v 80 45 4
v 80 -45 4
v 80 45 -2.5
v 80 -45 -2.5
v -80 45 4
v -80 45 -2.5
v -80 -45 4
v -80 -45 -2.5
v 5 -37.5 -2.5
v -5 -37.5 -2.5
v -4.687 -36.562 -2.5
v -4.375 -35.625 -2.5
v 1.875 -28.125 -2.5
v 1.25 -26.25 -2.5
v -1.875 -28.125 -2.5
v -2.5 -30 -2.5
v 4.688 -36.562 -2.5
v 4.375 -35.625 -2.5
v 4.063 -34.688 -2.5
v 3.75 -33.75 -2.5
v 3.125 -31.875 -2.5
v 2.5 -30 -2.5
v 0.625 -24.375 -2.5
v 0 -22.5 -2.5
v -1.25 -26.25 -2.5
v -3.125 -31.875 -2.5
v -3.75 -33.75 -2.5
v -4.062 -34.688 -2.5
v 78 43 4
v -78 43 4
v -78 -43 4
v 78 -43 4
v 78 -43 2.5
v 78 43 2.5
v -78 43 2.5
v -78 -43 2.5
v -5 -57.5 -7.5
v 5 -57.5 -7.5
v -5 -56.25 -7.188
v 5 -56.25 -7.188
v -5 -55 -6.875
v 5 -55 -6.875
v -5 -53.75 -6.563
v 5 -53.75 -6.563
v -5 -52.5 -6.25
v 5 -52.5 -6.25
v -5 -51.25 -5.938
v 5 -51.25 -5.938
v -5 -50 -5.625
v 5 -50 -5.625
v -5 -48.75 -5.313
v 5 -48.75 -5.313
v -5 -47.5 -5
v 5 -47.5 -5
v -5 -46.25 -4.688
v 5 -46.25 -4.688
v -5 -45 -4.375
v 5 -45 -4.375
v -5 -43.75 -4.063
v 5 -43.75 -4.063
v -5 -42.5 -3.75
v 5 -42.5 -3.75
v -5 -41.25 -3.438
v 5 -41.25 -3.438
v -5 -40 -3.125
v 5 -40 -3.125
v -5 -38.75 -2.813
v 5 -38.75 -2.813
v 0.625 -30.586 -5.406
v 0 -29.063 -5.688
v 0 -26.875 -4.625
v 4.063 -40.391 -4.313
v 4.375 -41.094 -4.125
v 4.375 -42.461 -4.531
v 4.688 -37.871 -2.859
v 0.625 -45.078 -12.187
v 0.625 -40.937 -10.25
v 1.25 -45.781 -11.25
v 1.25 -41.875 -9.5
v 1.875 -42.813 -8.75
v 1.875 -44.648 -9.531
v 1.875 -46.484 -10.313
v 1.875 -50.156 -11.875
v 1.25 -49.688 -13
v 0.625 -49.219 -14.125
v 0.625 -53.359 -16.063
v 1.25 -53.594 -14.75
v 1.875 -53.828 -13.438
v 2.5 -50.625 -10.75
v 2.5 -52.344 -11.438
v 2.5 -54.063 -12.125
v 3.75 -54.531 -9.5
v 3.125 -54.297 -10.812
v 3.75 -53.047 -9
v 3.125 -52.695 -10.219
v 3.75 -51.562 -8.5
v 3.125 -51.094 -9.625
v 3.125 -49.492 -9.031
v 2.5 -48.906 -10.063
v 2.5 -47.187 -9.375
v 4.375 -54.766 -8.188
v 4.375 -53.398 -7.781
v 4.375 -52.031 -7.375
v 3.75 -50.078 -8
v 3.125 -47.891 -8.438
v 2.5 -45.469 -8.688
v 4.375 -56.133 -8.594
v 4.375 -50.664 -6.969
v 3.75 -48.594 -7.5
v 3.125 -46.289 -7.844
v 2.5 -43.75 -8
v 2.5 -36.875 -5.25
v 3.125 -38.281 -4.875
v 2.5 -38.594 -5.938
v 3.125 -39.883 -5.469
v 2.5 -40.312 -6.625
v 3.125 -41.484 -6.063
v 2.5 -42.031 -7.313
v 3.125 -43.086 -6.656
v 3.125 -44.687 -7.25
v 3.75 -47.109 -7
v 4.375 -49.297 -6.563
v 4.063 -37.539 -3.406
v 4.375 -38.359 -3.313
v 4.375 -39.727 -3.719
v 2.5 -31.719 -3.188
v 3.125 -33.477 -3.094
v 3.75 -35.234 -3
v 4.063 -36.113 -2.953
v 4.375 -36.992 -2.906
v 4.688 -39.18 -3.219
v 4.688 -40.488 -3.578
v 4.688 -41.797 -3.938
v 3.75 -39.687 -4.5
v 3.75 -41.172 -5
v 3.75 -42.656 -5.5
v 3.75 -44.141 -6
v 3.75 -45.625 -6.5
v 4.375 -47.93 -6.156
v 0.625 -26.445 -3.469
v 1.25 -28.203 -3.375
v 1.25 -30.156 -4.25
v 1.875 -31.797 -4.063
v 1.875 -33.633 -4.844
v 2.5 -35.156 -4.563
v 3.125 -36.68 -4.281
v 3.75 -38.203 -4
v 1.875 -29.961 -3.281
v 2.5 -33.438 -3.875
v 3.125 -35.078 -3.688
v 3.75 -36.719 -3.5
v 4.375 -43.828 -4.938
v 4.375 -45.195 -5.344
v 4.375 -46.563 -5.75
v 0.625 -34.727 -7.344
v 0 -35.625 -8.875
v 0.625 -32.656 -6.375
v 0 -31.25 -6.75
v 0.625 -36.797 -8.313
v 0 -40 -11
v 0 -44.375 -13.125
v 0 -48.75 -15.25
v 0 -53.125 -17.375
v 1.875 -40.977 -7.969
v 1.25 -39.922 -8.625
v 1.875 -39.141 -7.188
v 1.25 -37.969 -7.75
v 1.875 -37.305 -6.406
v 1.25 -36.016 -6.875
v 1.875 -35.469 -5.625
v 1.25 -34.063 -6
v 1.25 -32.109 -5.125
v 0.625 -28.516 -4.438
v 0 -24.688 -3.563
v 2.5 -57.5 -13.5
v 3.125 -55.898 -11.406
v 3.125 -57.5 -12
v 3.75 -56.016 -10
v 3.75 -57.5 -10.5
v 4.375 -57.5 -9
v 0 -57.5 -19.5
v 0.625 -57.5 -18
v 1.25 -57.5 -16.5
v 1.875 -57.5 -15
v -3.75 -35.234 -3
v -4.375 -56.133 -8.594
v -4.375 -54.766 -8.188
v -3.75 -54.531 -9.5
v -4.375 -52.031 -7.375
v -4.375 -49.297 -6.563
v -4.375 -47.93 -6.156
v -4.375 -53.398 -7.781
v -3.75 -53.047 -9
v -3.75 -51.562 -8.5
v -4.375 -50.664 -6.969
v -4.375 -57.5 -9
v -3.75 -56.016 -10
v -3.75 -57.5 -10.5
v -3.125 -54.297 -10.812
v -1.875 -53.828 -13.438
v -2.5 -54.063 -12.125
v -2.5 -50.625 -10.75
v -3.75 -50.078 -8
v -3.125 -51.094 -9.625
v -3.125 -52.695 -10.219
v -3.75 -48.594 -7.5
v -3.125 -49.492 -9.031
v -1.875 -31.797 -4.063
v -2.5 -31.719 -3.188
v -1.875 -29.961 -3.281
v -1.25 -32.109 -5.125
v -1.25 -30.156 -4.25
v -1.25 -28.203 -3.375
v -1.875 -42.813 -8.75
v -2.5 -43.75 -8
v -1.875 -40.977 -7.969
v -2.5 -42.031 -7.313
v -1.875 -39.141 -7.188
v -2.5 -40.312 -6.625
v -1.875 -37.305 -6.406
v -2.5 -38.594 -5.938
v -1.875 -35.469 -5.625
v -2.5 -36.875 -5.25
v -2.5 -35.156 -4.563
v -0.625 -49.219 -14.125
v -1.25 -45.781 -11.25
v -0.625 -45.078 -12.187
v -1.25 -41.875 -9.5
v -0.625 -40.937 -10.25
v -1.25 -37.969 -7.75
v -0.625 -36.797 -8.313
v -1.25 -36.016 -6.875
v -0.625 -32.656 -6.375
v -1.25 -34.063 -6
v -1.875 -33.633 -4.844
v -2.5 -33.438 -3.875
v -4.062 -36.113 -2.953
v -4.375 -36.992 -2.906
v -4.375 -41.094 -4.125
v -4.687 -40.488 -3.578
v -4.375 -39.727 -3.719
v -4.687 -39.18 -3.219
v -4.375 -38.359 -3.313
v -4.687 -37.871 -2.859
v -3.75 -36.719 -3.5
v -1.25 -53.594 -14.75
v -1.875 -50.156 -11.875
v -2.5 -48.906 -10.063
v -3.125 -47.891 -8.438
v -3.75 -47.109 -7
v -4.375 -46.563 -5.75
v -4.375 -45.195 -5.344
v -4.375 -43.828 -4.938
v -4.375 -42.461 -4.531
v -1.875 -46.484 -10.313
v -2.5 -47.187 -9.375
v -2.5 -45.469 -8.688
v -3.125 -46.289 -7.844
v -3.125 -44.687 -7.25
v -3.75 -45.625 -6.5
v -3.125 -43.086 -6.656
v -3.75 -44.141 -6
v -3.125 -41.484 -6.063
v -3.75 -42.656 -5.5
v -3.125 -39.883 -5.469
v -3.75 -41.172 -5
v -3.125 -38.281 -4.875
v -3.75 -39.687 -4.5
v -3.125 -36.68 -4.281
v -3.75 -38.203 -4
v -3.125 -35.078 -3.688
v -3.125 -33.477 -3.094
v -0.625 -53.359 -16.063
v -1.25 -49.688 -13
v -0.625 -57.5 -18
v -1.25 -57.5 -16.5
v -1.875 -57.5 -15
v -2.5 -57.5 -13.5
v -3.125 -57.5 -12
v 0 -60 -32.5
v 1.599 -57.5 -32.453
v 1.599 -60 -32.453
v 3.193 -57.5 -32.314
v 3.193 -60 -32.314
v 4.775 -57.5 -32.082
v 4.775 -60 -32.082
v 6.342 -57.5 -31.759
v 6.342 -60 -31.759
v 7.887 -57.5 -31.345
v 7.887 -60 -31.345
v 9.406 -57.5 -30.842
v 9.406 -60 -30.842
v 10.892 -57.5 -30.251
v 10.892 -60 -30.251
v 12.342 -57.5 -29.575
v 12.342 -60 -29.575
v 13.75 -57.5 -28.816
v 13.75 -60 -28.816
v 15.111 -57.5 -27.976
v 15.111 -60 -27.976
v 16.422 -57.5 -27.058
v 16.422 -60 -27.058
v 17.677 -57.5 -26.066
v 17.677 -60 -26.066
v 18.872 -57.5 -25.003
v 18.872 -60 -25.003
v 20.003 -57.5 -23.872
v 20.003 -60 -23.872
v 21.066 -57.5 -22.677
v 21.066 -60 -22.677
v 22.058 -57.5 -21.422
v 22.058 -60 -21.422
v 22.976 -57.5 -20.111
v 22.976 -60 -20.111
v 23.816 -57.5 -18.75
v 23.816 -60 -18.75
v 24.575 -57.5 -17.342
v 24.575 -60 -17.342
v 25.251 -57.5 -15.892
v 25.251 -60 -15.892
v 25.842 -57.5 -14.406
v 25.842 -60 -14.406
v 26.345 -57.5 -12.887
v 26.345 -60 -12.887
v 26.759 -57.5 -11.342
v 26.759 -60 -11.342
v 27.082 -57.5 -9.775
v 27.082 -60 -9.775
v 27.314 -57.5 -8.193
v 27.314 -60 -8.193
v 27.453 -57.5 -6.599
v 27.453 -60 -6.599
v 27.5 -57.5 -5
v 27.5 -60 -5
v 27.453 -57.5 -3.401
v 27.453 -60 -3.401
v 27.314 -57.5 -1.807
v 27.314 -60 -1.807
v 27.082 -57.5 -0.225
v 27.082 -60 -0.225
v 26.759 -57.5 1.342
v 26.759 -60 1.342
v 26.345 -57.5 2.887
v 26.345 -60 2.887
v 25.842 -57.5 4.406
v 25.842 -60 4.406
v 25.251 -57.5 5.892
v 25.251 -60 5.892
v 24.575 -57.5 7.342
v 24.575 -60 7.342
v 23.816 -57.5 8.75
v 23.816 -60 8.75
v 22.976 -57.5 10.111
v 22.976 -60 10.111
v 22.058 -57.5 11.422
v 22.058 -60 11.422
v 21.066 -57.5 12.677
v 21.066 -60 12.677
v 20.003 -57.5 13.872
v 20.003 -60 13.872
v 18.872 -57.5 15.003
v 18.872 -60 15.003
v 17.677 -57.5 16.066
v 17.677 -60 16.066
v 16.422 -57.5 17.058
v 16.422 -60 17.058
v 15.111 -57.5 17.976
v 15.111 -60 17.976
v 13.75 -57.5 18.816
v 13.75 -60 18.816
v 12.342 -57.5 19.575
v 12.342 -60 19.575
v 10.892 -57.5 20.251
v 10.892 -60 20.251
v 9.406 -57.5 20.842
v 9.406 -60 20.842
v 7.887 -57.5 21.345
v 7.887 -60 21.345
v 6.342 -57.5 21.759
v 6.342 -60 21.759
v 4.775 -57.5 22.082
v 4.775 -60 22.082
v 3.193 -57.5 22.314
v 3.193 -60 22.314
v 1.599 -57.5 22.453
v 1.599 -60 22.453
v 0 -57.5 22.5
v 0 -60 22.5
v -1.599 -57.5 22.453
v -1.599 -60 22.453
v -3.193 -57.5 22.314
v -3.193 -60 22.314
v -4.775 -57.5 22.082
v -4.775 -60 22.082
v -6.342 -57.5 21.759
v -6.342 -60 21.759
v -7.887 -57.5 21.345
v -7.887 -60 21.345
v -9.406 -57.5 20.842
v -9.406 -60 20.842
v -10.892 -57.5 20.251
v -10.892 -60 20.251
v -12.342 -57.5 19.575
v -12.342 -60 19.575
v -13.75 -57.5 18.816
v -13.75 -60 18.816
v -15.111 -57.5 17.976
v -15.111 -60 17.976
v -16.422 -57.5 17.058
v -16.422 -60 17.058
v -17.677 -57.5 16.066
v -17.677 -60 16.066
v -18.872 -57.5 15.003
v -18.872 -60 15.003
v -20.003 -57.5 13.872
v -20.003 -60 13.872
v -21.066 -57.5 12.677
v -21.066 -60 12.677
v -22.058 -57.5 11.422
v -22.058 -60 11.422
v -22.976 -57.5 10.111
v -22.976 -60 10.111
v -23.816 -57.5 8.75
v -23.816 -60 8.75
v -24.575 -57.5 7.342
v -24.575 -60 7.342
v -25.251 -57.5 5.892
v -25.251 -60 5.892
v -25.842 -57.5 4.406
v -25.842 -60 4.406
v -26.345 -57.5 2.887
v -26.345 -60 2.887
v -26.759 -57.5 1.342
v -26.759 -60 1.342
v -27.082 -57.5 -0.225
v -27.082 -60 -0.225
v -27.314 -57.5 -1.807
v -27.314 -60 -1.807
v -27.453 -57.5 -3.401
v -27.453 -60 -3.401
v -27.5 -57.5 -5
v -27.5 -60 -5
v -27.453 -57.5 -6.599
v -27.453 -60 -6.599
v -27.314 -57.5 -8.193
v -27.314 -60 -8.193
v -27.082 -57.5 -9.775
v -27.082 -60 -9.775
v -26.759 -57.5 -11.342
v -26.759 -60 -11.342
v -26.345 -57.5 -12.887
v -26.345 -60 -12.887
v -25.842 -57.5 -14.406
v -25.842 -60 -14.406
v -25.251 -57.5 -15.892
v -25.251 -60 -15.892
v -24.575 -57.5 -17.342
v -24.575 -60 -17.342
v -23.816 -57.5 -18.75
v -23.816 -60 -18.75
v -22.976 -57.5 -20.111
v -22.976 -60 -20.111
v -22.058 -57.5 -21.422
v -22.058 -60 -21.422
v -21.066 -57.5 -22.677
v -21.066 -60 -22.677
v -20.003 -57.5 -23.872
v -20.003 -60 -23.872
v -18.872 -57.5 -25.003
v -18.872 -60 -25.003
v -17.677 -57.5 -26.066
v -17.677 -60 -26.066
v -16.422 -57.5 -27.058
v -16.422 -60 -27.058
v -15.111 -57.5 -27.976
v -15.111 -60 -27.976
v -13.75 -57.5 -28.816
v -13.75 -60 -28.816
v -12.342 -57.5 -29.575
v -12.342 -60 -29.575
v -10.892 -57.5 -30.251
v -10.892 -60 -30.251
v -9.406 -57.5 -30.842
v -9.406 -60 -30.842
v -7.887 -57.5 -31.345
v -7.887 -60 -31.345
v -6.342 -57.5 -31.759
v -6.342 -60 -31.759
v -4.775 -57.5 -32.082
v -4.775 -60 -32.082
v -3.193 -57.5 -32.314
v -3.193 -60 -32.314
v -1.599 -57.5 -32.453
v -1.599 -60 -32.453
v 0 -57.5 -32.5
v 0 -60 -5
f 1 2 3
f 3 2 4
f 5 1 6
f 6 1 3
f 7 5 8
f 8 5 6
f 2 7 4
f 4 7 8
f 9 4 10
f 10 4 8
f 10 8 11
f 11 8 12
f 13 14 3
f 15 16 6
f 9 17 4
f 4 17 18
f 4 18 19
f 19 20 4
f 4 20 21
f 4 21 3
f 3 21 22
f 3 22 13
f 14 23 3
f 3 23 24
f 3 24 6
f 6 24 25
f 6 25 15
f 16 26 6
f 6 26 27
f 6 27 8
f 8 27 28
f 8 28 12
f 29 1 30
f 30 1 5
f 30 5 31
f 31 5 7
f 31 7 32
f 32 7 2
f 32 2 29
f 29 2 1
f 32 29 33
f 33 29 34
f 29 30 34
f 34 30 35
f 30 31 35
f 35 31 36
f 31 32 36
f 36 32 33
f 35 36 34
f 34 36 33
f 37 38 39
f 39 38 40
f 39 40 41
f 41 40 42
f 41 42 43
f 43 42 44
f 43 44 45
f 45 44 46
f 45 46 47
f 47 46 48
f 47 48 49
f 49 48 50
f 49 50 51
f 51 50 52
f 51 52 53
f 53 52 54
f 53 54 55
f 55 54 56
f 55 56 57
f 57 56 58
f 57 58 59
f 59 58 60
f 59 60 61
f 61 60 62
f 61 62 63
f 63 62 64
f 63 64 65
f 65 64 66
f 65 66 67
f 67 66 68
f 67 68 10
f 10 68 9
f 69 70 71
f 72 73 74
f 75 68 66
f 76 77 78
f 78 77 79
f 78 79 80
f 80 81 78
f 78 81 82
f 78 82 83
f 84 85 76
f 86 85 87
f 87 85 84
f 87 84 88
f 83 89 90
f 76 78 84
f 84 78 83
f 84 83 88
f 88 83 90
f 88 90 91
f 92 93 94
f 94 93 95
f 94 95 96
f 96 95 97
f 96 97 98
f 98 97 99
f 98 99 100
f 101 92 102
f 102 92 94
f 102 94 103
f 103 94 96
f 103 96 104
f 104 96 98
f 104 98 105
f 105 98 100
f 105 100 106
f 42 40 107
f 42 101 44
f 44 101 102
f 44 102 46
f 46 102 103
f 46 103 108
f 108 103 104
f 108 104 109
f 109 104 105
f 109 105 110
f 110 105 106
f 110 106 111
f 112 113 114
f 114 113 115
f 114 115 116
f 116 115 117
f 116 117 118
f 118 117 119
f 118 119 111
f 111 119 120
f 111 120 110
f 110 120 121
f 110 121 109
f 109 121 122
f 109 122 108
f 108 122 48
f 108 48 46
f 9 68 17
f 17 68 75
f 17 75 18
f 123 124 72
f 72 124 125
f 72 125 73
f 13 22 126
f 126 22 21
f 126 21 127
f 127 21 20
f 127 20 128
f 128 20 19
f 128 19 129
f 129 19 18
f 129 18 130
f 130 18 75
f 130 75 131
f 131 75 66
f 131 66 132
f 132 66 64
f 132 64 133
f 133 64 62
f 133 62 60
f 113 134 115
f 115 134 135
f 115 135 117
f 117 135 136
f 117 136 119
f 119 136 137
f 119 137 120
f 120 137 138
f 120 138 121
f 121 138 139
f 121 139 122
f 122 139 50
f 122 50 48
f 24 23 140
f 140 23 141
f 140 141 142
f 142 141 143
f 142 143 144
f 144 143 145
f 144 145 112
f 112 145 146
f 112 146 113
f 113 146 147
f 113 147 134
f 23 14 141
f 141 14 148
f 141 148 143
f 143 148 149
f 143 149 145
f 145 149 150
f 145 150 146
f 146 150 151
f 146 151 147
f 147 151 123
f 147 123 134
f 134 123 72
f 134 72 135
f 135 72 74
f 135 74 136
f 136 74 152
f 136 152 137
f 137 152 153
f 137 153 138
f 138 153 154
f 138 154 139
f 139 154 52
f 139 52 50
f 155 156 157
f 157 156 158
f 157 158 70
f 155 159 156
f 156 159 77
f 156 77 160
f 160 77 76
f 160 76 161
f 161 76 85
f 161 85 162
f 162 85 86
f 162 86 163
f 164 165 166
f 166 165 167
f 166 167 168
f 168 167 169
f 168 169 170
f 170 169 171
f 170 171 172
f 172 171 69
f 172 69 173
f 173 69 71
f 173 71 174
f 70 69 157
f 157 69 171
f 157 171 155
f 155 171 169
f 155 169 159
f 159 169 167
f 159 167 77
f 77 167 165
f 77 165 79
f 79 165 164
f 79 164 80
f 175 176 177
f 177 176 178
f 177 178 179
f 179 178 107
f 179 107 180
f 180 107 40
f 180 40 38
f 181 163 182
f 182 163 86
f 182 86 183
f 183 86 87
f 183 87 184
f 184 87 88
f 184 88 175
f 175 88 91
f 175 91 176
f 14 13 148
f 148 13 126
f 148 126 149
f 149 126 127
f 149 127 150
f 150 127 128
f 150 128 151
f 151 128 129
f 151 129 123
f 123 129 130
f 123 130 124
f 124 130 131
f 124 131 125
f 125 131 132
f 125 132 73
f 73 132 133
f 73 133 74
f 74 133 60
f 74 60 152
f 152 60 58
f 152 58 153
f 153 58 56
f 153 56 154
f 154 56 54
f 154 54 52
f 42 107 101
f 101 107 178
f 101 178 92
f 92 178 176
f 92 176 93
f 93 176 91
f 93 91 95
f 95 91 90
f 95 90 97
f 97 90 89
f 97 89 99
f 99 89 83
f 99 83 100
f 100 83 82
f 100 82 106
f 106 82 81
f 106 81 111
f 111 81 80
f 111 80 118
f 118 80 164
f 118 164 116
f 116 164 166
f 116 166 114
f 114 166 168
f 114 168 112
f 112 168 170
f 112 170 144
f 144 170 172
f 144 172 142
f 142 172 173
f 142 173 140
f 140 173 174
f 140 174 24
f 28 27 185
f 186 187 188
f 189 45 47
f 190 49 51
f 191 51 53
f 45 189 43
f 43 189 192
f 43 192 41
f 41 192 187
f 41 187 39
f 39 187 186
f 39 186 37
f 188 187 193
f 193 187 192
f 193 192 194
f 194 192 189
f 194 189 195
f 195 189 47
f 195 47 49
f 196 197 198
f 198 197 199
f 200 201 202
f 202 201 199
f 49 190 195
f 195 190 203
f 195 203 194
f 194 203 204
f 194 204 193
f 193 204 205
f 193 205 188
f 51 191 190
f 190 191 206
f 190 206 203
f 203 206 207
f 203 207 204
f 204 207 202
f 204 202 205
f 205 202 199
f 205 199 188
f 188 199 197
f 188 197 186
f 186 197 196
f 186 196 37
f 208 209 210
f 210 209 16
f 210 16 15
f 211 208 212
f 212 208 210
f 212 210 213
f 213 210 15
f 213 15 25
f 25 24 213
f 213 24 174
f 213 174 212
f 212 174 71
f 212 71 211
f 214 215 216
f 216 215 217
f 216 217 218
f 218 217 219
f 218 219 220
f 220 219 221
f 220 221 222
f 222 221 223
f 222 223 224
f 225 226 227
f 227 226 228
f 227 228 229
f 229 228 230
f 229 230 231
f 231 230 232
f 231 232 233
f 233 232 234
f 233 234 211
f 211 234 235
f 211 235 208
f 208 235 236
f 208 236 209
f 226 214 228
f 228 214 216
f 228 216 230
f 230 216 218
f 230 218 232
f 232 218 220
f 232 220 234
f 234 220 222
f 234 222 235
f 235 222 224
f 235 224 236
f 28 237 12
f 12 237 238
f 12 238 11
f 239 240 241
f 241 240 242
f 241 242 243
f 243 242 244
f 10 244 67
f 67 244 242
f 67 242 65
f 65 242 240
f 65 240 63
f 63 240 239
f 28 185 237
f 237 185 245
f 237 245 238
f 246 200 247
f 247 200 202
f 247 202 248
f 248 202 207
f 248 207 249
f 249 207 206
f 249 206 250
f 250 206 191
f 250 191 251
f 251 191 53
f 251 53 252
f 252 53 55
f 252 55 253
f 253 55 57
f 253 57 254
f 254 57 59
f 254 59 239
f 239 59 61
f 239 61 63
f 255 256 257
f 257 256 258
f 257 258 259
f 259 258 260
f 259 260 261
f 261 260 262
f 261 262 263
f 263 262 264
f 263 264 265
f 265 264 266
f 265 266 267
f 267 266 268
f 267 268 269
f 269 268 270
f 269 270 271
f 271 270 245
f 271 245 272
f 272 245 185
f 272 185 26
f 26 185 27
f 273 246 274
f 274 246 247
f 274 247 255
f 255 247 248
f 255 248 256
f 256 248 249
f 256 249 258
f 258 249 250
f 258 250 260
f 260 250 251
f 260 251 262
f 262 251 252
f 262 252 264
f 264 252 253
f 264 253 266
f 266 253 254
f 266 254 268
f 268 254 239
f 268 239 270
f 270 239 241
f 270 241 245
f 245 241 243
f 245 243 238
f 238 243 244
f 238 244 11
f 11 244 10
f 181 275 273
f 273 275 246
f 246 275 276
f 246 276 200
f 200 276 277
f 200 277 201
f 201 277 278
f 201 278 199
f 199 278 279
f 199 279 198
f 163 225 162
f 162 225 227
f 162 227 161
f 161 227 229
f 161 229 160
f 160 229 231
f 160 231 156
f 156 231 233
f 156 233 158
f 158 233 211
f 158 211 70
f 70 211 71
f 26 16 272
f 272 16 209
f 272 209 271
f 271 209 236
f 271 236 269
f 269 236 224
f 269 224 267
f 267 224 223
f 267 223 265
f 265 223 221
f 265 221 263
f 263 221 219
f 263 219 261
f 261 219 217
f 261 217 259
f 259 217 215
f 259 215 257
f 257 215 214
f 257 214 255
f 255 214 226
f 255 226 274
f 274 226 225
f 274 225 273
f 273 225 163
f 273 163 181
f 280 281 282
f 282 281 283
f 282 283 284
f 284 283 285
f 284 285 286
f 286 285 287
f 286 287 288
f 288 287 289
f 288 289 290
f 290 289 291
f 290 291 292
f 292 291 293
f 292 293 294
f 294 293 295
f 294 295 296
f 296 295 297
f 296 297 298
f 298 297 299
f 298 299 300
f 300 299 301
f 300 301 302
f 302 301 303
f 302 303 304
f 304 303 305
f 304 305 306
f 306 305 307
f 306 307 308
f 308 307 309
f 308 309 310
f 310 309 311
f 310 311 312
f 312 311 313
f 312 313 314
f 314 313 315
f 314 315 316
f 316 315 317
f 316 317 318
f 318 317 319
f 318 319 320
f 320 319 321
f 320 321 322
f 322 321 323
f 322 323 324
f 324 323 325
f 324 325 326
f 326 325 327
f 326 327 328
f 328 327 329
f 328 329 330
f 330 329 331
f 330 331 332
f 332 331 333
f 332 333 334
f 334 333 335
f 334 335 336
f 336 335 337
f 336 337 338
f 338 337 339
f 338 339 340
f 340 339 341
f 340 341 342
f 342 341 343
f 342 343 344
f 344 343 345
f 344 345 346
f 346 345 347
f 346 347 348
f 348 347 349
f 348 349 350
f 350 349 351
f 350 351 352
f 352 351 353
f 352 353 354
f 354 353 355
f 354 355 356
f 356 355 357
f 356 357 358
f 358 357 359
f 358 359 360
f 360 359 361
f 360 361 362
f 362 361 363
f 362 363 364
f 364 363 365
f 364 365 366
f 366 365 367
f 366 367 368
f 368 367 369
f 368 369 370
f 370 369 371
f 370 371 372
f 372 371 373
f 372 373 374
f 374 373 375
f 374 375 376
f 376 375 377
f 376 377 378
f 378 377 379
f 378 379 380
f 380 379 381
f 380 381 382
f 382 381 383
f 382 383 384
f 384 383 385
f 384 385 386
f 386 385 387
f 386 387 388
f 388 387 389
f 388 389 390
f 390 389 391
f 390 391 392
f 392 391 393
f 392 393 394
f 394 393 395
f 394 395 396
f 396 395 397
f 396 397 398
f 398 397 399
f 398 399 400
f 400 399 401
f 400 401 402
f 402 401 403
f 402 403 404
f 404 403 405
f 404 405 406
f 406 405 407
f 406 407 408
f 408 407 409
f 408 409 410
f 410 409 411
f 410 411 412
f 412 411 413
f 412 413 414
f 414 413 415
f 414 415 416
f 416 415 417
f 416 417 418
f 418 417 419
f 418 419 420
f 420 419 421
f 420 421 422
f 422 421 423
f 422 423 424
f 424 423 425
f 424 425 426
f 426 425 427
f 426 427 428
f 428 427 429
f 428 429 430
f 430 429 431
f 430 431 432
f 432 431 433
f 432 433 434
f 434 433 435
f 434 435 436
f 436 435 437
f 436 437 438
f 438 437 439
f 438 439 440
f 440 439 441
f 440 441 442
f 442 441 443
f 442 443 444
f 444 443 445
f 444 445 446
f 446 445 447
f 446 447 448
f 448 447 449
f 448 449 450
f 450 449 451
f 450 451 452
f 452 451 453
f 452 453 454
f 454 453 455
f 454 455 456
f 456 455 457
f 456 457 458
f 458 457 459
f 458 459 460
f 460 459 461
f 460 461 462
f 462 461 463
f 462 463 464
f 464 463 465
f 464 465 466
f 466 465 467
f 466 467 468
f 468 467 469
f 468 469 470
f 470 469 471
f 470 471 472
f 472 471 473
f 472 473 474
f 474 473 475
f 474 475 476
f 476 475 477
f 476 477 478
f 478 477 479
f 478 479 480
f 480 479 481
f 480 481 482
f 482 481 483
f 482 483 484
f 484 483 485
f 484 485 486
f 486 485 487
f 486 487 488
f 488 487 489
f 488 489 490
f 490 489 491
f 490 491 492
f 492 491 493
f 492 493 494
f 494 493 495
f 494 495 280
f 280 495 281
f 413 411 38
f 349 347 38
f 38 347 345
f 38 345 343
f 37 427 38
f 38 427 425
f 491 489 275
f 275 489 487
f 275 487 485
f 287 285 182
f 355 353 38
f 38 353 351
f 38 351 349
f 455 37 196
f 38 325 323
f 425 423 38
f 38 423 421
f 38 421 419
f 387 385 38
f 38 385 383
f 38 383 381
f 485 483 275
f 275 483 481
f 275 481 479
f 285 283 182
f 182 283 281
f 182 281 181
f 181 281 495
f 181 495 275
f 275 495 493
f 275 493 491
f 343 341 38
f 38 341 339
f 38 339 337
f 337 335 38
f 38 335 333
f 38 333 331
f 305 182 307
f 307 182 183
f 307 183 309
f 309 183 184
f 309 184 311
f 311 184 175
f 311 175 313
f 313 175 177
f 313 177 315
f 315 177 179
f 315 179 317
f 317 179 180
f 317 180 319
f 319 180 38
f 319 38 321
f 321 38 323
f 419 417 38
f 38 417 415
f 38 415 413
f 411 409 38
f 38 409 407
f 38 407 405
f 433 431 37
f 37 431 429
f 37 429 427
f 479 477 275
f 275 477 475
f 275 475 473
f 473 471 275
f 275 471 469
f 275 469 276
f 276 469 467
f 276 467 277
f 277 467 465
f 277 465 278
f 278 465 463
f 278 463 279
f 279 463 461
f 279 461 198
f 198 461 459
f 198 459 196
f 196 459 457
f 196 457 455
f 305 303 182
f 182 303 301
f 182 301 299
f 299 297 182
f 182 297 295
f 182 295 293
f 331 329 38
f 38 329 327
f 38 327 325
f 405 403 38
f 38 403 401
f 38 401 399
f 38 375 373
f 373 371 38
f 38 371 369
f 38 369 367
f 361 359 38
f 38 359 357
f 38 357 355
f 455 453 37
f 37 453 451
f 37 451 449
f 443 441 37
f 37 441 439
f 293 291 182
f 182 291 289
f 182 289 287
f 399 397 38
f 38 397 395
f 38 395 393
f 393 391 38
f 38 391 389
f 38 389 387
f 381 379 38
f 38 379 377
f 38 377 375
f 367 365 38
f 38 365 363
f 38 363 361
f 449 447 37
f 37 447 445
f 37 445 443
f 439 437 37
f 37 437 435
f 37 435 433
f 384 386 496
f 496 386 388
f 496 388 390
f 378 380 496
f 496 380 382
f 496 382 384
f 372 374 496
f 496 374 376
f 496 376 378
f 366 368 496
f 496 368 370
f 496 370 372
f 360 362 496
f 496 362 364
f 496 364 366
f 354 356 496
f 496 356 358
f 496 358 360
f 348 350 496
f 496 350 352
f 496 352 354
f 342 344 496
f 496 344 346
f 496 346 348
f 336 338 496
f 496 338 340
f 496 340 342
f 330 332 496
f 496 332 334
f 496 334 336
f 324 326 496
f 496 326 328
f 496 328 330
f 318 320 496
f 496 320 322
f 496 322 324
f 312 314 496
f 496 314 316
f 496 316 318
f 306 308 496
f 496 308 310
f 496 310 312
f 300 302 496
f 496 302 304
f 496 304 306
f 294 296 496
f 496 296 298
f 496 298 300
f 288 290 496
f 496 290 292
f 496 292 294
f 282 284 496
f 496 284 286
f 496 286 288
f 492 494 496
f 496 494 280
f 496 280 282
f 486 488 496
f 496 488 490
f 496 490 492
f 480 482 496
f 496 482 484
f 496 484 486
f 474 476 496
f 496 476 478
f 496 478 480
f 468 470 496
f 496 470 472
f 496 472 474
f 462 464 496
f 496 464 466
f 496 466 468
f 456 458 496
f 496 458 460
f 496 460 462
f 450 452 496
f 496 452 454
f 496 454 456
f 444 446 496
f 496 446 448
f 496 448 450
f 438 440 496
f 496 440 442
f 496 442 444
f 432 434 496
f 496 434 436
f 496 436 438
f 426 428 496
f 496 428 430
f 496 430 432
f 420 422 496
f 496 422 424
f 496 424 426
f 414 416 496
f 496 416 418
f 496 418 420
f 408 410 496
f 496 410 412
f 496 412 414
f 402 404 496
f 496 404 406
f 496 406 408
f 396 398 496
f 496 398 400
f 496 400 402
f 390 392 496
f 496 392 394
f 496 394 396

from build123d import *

# Parameters (mm, degrees)
SKETCH1_W           = 160
SKETCH1_H           = 90
BOSS_EXTRUDE1_DEPTH = 2.5
SKETCH2_W           = 160
SKETCH2_H           = 90
SKETCH2_W_2         = 156
SKETCH2_H_2         = 86
BOSS_EXTRUDE2_DEPTH = 1.5
SKETCH3_R           = 27.5
BOSS_EXTRUDE3_DEPTH = 2.5


with BuildPart() as part:
    # Sketch1 → Boss-Extrude1 (new body, symmetric)
    with BuildSketch(Plane.XY):
        Rectangle(SKETCH1_W, SKETCH1_H)
    extrude(amount=BOSS_EXTRUDE1_DEPTH, both=True)

    # Sketch2 → Boss-Extrude2 (add)
    with BuildSketch(Plane.XY.offset(2.5)):
        Rectangle(SKETCH2_W, SKETCH2_H)
        Rectangle(SKETCH2_W_2, SKETCH2_H_2, mode=Mode.SUBTRACT)
    extrude(amount=BOSS_EXTRUDE2_DEPTH)



with BuildPart() as body_2:
    # Sketch3 → Boss-Extrude3 (new body)
    with BuildSketch(Plane(origin=(0, -60, 0), x_dir=(1, 0, 0), z_dir=(0, 1, 0))):
        with Locations((0, 5)):
            Circle(SKETCH3_R)
    extrude(amount=BOSS_EXTRUDE3_DEPTH)


with BuildPart() as part_1:
    add(part.part)

    add(body_2.part)  # Loft1 merges body 2
    # Sketch5 → Loft1 section 0
    with BuildSketch(Plane(origin=(0, 0, -2.5), x_dir=(-1, 0, 0), z_dir=(0, 0, -1))):
        Polygon((0, -22.5), (-5, -37.5), (5, -37.5), align=None)
    # Sketch4 → Loft1 section 1
    with BuildSketch(Plane(origin=(0, -57.5, 0), x_dir=(1, 0, 0), z_dir=(0, 1, 0))):
        Polygon((-5, 7.5), (0, 19.5), (5, 7.5), align=None)
    loft()


solid = part_1.part
